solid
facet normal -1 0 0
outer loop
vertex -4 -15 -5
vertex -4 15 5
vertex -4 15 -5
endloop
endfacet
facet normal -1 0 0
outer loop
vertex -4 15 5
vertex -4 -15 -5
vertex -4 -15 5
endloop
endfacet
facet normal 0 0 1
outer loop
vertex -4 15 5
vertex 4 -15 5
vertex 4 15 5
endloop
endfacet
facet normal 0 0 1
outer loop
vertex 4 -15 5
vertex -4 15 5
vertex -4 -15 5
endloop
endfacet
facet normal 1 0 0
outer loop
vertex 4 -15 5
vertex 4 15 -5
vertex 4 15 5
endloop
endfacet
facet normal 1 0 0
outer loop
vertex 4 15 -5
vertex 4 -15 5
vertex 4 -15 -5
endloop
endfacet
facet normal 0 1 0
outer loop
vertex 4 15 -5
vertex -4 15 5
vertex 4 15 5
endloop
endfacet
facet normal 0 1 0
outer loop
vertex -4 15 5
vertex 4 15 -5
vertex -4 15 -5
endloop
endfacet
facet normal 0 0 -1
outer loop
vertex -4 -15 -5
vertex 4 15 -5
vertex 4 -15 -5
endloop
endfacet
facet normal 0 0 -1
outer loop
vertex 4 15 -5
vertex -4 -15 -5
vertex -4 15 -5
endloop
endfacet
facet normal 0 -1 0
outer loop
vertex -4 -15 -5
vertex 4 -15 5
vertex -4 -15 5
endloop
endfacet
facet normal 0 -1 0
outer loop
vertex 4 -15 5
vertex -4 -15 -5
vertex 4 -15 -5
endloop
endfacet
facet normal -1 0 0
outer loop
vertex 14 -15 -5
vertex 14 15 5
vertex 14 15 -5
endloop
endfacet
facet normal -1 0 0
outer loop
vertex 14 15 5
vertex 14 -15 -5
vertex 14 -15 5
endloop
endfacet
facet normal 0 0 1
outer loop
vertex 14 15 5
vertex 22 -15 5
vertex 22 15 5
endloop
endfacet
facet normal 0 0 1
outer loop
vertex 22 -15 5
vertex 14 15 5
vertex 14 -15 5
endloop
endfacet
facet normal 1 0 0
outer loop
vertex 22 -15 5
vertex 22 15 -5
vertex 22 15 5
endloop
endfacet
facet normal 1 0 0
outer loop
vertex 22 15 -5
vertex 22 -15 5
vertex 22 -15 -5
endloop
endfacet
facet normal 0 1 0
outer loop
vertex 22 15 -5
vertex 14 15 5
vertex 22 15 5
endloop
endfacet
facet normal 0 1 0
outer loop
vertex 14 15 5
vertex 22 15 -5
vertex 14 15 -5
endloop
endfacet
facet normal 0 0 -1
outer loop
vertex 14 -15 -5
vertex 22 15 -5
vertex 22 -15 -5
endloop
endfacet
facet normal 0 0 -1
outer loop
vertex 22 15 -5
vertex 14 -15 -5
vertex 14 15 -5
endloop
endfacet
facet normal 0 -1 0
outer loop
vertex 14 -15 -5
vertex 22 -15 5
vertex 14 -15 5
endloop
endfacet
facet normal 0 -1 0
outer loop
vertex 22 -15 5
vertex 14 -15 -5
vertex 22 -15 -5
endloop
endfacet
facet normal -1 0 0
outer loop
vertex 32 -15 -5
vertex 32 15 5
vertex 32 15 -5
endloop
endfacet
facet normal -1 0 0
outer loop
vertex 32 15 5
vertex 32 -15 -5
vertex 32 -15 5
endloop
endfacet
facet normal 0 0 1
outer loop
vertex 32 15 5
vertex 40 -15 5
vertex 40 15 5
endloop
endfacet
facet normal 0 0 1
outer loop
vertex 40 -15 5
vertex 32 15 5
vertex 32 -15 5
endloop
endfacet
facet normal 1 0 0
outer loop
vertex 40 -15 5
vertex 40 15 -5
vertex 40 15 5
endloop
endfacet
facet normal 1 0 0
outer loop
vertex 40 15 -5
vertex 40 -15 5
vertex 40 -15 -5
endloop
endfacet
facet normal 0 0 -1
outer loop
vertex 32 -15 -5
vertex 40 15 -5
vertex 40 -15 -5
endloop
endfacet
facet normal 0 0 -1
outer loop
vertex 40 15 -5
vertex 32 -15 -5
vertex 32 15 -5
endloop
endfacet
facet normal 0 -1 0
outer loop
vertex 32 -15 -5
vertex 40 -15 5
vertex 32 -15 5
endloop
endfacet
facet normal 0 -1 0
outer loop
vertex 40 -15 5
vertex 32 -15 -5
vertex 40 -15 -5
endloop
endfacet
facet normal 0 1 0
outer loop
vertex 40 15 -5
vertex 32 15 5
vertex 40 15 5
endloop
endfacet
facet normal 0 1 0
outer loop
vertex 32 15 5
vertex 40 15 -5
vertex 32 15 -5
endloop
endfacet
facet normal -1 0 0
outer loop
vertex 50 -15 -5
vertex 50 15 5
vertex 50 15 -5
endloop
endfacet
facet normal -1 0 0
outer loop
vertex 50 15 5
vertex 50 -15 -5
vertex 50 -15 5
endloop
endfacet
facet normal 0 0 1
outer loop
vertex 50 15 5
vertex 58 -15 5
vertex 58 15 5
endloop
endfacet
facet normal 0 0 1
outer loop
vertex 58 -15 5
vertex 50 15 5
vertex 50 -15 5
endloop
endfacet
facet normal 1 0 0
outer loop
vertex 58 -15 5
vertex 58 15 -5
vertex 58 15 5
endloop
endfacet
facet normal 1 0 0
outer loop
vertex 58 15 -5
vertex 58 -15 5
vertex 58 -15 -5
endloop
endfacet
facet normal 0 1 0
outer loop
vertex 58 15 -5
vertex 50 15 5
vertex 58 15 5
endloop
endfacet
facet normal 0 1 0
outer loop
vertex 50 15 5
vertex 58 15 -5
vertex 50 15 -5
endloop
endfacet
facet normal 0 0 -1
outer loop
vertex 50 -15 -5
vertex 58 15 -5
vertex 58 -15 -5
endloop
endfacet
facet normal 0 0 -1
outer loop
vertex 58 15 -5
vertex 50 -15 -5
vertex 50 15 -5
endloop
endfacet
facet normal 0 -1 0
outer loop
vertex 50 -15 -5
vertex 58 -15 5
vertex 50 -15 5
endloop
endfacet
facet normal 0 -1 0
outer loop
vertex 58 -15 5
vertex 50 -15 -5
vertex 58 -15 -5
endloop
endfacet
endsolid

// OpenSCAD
$fn=50; // Sets the number of fragments for rounded shapes. Increase for better resolution.
BOX_W = 8.0; // Box Width
BOX_L = 30;// Box Length
BOX_H = 10.0; // Box Height

module rectangle(width, height, length) {
    cube([width, length, height], center=true);
}

// Call the module to create four rectangular objects, each 10mm apart.
for (i=[0:3]) {
    translate([i*(BOX_W+10), 0, 0]) {
        rectangle(BOX_W, BOX_H, BOX_L);
    }
}
